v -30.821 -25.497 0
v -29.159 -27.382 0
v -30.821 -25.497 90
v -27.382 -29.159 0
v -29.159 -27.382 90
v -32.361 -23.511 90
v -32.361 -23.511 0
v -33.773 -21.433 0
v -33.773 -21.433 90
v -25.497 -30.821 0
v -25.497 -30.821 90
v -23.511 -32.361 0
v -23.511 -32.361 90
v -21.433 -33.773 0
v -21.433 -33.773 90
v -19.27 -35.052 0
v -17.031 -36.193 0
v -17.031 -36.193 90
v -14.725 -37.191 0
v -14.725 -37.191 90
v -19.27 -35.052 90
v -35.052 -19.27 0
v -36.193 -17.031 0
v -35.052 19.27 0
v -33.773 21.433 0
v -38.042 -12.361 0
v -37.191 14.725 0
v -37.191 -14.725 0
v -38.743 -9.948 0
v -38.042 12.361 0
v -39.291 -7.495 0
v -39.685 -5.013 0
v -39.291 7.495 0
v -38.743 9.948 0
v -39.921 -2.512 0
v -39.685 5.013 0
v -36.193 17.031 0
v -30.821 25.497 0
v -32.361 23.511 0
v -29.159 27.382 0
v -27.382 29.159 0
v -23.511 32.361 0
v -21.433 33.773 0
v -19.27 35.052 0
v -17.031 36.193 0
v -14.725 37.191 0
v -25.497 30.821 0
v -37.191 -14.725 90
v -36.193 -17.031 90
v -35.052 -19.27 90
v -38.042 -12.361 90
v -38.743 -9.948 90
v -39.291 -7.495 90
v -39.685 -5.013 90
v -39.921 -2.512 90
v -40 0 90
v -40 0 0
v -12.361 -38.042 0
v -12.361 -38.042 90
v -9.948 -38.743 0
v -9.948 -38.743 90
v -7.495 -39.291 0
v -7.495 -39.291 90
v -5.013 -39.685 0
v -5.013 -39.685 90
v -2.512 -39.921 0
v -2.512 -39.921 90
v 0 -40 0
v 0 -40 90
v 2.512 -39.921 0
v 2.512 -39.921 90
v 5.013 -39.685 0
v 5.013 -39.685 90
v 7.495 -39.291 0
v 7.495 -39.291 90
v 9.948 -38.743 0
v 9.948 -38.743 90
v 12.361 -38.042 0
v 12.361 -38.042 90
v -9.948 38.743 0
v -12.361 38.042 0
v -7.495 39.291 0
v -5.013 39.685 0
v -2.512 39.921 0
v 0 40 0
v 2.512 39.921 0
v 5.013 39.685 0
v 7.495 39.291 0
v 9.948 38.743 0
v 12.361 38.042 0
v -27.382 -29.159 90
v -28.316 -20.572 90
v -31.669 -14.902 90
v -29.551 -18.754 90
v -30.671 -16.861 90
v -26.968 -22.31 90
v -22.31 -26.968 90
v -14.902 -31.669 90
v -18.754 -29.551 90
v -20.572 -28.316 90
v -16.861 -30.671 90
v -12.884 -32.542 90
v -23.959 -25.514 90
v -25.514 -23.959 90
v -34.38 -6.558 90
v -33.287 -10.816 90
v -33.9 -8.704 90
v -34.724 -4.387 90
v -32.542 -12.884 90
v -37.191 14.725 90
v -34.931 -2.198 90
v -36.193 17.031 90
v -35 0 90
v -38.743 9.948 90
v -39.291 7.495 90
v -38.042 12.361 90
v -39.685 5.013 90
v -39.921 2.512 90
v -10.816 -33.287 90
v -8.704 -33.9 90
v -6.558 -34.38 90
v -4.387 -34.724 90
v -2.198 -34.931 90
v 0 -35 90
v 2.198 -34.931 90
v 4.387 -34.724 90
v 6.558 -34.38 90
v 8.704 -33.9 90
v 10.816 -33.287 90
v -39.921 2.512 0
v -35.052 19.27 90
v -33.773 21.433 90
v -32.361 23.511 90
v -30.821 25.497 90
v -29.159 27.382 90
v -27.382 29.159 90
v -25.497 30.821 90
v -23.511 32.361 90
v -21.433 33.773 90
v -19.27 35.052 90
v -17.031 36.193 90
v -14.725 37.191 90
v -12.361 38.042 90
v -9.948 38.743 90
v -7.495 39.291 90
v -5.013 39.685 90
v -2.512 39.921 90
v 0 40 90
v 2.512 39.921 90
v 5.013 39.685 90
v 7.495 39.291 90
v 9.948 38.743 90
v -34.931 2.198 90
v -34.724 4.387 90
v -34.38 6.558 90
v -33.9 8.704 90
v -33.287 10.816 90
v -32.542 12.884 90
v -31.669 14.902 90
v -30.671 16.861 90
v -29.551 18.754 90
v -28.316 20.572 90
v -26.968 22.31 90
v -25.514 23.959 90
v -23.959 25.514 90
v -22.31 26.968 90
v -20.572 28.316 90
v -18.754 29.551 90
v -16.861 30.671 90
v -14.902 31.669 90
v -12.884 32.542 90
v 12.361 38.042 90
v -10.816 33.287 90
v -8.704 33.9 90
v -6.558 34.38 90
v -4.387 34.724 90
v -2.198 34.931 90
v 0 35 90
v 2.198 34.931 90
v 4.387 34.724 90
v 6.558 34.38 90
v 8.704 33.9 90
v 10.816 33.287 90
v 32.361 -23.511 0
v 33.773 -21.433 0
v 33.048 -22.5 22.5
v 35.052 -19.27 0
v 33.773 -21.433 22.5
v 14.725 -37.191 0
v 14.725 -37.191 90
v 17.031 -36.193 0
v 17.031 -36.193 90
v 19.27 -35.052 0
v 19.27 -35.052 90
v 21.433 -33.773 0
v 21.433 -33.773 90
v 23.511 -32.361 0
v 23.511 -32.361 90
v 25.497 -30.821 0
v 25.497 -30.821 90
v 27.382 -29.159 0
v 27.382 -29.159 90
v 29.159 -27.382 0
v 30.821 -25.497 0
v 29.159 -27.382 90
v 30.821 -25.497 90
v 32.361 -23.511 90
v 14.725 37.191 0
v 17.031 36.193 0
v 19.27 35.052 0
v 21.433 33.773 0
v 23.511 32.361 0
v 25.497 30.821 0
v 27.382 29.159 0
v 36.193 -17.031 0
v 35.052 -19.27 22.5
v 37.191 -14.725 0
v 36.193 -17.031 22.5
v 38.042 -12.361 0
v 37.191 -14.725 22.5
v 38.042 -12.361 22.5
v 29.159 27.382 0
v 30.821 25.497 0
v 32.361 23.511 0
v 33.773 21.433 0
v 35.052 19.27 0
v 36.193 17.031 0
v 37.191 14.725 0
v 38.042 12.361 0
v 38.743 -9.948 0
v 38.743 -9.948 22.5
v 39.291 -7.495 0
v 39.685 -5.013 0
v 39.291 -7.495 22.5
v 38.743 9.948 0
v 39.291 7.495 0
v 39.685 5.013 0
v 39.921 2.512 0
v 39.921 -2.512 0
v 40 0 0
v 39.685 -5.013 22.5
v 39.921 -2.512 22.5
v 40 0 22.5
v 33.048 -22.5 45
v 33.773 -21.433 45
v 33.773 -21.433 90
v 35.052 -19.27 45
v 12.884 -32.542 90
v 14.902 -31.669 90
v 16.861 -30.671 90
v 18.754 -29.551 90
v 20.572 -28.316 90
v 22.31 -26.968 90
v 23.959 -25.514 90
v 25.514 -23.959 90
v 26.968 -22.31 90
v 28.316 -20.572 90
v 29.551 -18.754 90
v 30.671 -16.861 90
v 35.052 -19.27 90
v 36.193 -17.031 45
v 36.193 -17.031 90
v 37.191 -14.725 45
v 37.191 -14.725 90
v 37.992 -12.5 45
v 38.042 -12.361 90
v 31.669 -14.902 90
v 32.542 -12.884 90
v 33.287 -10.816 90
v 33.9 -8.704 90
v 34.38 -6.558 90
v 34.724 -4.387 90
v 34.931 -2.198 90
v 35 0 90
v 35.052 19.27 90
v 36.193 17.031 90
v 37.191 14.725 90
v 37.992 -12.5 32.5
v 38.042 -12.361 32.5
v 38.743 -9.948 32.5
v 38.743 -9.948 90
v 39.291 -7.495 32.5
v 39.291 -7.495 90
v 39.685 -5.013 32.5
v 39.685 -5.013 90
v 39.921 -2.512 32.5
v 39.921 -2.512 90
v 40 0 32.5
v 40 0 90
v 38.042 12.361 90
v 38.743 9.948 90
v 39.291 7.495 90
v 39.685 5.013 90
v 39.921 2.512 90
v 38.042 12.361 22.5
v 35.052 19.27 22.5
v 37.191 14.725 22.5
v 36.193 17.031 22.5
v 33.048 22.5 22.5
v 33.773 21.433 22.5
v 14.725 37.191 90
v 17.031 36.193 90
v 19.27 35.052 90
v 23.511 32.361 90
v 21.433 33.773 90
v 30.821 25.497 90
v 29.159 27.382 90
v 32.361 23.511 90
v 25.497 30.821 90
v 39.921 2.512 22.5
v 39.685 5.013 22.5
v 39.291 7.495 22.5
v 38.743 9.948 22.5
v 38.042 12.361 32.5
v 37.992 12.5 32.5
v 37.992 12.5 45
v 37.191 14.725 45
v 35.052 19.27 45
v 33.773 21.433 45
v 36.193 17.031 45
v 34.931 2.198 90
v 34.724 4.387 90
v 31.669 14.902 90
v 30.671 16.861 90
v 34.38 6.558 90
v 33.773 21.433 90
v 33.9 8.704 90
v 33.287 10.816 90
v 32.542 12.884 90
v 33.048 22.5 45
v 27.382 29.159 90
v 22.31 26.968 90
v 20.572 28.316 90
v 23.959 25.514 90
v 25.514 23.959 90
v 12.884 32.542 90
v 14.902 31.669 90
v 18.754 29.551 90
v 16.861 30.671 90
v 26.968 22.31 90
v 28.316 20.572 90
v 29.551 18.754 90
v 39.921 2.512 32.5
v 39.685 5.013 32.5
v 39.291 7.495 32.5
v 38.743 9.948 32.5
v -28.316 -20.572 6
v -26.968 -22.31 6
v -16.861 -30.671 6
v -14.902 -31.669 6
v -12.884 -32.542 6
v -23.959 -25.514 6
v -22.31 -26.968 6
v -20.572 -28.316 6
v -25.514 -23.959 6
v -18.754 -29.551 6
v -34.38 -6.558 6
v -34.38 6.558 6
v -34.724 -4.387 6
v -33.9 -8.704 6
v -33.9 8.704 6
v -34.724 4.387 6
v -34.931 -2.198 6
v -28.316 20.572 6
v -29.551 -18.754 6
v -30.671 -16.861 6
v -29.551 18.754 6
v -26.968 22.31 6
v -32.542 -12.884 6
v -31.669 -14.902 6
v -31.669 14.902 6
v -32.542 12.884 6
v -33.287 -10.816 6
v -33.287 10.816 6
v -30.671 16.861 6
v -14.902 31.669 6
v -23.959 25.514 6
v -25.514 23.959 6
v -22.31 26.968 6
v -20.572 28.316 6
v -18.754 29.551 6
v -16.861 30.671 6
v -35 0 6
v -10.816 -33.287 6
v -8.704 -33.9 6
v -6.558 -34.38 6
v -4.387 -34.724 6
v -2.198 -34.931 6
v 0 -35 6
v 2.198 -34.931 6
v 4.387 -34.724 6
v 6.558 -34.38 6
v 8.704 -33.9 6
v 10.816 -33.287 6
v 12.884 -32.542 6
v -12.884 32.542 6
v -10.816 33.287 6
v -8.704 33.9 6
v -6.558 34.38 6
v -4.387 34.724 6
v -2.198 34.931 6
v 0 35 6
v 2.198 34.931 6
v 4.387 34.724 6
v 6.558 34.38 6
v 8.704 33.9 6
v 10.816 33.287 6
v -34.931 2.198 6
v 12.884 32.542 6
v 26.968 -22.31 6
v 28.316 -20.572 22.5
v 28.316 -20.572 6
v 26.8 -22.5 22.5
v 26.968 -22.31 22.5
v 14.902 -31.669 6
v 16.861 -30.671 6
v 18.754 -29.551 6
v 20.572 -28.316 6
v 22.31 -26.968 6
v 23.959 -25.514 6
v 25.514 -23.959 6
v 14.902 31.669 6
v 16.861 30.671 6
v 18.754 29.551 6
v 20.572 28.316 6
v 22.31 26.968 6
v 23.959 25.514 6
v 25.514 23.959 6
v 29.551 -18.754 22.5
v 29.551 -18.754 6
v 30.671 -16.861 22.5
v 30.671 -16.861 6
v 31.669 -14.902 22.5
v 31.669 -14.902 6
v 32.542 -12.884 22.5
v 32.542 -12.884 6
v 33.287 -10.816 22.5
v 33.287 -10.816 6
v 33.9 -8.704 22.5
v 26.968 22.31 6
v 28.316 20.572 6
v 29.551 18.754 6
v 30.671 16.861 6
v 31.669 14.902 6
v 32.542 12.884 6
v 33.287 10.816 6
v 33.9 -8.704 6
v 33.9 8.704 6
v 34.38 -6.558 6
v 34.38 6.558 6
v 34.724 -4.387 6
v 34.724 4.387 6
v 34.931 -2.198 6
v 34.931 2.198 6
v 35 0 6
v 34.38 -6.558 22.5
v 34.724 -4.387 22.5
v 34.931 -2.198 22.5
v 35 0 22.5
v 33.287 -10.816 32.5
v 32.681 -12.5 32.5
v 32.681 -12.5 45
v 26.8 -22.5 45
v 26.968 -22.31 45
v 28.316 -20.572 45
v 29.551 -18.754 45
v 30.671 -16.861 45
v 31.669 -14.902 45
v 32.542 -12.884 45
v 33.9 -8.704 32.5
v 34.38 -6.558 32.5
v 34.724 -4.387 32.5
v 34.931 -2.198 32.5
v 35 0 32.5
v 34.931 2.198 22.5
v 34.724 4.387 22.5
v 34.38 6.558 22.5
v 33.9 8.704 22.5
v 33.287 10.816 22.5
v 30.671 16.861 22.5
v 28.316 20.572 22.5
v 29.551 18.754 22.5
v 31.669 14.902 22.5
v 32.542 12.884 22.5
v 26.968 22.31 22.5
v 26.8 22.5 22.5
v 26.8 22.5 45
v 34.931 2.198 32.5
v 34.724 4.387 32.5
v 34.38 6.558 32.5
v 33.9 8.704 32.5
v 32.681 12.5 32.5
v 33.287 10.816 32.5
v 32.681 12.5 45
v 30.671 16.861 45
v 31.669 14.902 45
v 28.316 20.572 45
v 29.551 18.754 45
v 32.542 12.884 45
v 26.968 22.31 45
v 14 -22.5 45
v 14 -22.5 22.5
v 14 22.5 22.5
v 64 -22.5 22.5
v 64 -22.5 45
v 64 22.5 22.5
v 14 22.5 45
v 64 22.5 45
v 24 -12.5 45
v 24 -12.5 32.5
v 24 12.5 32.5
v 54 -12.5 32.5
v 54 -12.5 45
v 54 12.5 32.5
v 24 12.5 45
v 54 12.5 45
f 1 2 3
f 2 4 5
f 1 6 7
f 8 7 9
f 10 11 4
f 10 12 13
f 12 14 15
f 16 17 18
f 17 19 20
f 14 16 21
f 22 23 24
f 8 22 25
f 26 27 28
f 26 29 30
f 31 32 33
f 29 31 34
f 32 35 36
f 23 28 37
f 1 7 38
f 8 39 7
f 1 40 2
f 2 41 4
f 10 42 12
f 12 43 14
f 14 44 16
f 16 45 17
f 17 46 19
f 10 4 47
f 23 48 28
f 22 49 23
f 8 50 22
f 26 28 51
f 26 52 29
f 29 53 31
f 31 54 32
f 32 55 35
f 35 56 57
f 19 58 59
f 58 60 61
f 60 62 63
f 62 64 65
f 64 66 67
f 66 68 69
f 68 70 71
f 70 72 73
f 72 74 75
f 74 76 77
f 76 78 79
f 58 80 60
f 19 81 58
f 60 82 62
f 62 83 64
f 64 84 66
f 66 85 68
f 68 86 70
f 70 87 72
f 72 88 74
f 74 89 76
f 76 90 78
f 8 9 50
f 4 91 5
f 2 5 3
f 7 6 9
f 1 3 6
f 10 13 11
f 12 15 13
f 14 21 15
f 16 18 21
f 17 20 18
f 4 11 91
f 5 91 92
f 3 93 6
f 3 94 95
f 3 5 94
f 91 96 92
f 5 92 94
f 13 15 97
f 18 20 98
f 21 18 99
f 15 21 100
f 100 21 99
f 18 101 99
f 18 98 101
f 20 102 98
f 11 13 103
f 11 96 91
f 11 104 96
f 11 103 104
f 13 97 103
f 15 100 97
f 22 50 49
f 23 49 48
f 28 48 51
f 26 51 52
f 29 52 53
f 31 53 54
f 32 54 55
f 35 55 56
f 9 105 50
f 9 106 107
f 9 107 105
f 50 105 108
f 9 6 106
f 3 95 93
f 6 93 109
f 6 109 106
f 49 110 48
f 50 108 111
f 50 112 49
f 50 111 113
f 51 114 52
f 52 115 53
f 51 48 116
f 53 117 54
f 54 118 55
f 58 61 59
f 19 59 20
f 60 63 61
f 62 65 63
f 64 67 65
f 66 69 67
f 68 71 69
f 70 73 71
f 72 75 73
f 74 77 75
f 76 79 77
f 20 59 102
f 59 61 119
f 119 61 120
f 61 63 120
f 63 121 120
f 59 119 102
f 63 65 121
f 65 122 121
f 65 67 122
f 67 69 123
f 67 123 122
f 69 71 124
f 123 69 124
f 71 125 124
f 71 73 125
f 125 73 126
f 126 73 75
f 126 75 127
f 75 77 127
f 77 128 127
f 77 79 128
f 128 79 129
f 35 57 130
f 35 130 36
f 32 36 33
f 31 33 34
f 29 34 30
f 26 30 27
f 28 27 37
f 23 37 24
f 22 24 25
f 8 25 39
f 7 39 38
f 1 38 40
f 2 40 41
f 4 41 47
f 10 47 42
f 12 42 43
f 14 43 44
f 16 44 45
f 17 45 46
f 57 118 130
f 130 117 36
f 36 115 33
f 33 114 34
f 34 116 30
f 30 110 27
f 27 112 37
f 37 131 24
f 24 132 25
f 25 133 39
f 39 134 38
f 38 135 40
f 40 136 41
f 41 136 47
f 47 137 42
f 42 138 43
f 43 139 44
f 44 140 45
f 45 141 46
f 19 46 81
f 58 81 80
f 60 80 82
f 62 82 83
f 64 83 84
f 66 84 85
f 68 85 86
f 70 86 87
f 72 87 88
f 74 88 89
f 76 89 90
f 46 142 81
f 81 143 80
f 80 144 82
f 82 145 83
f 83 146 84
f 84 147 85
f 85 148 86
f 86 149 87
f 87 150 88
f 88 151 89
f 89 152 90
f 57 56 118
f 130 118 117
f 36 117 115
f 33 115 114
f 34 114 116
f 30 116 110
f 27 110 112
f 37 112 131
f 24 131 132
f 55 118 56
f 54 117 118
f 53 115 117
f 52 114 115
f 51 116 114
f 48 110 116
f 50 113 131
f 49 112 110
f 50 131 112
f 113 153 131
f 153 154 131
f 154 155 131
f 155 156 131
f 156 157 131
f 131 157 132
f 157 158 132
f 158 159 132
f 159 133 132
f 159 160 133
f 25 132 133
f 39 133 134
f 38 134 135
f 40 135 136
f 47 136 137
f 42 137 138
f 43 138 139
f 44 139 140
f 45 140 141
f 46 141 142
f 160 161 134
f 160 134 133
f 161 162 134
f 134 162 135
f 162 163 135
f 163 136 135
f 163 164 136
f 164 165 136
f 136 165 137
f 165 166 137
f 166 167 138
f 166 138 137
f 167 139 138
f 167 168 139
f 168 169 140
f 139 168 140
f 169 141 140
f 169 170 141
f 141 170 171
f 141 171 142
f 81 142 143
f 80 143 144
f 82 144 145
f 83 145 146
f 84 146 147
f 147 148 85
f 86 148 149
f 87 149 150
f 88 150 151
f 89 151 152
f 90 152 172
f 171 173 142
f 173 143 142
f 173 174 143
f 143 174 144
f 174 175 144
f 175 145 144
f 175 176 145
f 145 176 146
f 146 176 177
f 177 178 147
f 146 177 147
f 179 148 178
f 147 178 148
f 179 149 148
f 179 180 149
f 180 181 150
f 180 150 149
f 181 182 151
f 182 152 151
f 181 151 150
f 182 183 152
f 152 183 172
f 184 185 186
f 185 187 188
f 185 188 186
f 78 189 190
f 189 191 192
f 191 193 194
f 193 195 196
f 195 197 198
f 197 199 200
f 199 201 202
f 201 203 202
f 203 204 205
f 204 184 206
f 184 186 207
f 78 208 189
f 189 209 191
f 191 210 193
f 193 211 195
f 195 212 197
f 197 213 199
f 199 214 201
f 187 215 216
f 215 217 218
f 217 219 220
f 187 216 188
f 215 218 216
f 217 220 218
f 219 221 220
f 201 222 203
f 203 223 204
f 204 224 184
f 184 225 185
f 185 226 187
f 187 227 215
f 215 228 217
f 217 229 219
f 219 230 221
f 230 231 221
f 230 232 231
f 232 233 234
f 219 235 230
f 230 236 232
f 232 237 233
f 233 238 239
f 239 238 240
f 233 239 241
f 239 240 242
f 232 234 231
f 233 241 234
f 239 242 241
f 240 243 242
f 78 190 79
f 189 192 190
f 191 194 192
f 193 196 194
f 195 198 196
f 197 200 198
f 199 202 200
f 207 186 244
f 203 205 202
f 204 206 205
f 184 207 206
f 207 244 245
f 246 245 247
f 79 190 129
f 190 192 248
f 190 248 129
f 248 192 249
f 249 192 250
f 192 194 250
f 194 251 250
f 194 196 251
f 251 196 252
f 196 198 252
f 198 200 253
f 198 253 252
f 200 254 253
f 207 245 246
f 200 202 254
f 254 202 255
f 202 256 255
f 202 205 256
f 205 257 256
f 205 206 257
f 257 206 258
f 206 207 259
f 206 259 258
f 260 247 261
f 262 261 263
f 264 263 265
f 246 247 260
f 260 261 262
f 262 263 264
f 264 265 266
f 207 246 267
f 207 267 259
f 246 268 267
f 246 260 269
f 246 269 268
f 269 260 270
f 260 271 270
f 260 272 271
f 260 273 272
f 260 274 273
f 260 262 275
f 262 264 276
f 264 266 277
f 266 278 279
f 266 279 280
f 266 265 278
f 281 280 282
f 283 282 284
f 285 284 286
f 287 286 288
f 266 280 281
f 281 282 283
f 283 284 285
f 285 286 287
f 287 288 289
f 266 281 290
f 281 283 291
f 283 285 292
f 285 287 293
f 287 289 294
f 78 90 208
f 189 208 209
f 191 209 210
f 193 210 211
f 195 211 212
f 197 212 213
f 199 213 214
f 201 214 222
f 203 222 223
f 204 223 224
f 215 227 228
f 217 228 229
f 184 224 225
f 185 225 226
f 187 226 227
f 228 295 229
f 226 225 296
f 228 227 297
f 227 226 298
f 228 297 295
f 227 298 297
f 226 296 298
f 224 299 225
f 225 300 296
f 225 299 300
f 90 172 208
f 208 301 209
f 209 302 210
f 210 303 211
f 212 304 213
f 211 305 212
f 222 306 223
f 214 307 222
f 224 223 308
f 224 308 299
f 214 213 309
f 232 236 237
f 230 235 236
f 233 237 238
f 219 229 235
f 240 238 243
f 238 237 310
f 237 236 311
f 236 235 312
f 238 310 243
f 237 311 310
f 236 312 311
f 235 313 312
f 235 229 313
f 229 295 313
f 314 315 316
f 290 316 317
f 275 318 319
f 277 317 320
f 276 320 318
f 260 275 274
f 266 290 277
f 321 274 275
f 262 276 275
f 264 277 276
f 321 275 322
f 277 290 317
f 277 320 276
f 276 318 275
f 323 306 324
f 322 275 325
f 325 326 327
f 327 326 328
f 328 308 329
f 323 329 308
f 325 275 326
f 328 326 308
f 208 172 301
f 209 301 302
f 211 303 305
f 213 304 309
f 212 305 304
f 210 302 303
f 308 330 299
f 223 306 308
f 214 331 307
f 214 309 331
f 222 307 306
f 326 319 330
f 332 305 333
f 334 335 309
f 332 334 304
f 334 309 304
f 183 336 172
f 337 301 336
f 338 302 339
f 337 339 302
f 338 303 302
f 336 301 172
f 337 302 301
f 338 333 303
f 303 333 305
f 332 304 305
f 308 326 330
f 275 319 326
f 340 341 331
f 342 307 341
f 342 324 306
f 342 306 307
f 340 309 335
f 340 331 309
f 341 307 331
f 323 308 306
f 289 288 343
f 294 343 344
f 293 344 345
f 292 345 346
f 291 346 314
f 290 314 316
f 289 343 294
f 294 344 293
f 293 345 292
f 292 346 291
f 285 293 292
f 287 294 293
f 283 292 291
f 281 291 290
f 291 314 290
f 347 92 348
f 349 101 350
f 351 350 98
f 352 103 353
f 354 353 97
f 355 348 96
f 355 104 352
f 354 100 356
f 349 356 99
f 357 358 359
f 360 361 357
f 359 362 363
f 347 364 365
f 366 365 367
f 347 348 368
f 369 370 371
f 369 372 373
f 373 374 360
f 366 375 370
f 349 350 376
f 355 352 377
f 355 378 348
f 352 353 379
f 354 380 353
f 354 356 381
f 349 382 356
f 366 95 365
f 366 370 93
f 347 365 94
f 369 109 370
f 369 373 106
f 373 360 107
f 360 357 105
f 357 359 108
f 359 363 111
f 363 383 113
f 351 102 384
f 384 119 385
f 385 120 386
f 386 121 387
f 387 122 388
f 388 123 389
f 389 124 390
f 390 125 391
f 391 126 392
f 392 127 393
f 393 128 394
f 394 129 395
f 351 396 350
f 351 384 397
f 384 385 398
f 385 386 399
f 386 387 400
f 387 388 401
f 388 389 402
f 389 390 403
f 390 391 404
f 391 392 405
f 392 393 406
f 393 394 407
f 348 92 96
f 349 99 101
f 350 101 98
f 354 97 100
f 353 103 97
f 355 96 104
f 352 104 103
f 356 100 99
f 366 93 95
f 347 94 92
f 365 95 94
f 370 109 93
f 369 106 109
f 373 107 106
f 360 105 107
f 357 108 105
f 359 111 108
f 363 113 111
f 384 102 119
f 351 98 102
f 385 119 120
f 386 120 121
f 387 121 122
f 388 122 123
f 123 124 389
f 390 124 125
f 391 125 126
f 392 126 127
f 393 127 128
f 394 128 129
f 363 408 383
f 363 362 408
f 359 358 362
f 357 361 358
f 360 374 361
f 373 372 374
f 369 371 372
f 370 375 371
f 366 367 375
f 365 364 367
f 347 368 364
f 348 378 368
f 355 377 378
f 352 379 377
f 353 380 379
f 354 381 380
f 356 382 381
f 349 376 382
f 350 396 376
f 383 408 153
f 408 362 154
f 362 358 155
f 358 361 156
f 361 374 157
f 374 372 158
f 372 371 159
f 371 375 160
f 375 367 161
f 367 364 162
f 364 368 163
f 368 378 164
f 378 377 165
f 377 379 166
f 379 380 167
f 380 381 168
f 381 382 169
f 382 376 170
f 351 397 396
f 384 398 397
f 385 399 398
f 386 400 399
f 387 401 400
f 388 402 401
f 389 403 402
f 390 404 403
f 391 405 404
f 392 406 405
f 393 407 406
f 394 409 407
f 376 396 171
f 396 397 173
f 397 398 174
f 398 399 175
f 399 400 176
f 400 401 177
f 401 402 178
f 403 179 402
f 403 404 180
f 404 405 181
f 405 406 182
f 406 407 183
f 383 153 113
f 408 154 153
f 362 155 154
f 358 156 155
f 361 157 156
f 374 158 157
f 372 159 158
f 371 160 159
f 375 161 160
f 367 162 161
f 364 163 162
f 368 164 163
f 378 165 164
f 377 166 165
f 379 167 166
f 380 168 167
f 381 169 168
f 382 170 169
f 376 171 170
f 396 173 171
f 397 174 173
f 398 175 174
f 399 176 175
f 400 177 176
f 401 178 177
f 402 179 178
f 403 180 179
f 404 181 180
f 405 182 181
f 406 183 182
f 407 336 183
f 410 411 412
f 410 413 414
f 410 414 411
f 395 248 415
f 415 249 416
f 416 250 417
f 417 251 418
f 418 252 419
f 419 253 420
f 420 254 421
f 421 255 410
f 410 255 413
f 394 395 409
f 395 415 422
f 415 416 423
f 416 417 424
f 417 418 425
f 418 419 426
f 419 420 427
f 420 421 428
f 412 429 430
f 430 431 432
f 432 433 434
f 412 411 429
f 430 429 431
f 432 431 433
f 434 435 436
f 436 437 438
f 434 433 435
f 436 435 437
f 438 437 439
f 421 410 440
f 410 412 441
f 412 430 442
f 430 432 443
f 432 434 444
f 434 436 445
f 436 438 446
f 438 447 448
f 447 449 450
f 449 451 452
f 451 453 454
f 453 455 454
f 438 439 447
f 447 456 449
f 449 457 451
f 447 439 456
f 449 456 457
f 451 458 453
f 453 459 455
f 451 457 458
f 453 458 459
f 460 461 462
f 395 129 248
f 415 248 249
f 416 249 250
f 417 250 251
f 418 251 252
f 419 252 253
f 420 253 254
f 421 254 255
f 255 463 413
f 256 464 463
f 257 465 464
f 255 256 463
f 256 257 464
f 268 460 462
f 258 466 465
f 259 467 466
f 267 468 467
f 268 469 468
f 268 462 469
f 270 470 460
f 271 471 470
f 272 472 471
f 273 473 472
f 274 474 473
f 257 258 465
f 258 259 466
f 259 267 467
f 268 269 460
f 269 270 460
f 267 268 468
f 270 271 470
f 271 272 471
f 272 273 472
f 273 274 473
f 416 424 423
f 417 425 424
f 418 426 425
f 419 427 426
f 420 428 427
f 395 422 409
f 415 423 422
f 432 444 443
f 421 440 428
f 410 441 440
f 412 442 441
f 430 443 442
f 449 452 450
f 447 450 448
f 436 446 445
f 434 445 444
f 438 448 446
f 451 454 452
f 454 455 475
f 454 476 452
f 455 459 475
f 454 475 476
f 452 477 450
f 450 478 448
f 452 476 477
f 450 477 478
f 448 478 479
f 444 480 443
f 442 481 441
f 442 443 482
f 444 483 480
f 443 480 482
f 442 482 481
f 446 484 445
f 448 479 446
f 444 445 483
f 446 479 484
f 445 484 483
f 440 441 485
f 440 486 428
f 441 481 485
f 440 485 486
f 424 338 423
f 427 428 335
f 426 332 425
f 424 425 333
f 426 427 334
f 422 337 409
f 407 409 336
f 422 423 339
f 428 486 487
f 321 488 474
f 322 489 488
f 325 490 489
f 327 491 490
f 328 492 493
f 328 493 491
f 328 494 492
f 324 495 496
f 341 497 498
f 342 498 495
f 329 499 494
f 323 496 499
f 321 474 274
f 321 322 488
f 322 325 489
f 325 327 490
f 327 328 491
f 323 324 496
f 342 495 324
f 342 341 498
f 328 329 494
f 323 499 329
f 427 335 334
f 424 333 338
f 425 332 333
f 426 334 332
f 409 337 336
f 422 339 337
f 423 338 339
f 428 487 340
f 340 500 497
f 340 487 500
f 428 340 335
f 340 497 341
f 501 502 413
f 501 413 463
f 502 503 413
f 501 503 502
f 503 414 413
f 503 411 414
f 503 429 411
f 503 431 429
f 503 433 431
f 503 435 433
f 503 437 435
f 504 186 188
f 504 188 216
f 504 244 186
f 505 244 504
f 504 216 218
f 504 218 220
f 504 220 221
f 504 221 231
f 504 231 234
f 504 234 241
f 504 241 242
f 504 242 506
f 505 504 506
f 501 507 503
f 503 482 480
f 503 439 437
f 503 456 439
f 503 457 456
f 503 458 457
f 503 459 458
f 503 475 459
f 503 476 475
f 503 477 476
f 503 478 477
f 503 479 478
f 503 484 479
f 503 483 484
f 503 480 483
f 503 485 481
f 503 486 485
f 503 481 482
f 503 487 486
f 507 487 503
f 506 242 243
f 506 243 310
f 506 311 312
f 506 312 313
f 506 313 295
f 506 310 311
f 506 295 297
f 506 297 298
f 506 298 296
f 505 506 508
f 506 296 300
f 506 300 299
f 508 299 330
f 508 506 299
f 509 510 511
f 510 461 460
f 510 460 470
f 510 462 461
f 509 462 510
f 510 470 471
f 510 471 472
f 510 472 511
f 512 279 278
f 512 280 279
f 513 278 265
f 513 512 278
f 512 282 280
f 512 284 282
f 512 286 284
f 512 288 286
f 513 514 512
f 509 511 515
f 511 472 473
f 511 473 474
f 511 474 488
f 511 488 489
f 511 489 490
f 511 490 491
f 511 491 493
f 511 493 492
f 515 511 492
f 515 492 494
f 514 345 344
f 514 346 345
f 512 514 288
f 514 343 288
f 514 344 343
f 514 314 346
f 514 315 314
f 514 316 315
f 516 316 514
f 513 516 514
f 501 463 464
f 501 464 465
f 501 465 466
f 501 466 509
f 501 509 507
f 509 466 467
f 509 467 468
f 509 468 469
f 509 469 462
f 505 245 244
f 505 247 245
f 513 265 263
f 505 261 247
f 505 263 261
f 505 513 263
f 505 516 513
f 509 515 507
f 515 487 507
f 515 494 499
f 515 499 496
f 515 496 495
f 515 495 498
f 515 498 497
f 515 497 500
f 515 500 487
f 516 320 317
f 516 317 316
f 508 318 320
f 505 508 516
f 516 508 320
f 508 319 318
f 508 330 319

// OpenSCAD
$fn = 100;

// マグ本体のパラメータ
outer_d = 80;
inner_d = 70;
height = 90;
bottom_thick = 6;

// 取手のパラメータ
handle_inner_h = 30;
handle_inner_w = 25;
handle_thick = 10;

// マグ本体の作成
module mug_body() {
    difference() {
        cylinder(d = outer_d, h = height);
        translate([0, 0, bottom_thick])
            cylinder(d = inner_d, h = height - bottom_thick + 0.1);
    }
}

// 取手の作成
module handle() {
    handle_outer_w = handle_inner_w + 2 * handle_thick;
    handle_total_h = handle_inner_h + 2 * handle_thick;
    
    translate([outer_d / 2 - 1, 0, height / 2]) {
        rotate([0, 90, 0]) {
            difference() {
                // 外側の形状 (D字の背にあたる半円と長方形)
                union() {
                    translate([0, 0, -handle_total_h / 2])
                        cylinder(d = handle_outer_w, h = handle_total_h);
                    translate([0, -handle_outer_w / 2, -handle_total_h / 2])
                        cube([handle_outer_w / 2, handle_outer_w, handle_total_h]);
                }
                // 内側の空間 (D字の穴)
                union() {
                    translate([0, 0, -handle_inner_h / 2])
                        cylinder(d = handle_inner_w, h = handle_inner_h);
                    translate([0, -handle_inner_w / 2, -handle_inner_h / 2])
                        cube([handle_inner_w / 2, handle_inner_w, handle_inner_h]);
                }
                // マグ本体との接続面をフラットにするための切り取り
                translate([-handle_outer_w, -handle_outer_w, -handle_total_h])
                    cube([handle_outer_w, handle_outer_w * 2, handle_total_h * 2]);
            }
        }
    }
}

union() {
    mug_body();
    handle();
}
